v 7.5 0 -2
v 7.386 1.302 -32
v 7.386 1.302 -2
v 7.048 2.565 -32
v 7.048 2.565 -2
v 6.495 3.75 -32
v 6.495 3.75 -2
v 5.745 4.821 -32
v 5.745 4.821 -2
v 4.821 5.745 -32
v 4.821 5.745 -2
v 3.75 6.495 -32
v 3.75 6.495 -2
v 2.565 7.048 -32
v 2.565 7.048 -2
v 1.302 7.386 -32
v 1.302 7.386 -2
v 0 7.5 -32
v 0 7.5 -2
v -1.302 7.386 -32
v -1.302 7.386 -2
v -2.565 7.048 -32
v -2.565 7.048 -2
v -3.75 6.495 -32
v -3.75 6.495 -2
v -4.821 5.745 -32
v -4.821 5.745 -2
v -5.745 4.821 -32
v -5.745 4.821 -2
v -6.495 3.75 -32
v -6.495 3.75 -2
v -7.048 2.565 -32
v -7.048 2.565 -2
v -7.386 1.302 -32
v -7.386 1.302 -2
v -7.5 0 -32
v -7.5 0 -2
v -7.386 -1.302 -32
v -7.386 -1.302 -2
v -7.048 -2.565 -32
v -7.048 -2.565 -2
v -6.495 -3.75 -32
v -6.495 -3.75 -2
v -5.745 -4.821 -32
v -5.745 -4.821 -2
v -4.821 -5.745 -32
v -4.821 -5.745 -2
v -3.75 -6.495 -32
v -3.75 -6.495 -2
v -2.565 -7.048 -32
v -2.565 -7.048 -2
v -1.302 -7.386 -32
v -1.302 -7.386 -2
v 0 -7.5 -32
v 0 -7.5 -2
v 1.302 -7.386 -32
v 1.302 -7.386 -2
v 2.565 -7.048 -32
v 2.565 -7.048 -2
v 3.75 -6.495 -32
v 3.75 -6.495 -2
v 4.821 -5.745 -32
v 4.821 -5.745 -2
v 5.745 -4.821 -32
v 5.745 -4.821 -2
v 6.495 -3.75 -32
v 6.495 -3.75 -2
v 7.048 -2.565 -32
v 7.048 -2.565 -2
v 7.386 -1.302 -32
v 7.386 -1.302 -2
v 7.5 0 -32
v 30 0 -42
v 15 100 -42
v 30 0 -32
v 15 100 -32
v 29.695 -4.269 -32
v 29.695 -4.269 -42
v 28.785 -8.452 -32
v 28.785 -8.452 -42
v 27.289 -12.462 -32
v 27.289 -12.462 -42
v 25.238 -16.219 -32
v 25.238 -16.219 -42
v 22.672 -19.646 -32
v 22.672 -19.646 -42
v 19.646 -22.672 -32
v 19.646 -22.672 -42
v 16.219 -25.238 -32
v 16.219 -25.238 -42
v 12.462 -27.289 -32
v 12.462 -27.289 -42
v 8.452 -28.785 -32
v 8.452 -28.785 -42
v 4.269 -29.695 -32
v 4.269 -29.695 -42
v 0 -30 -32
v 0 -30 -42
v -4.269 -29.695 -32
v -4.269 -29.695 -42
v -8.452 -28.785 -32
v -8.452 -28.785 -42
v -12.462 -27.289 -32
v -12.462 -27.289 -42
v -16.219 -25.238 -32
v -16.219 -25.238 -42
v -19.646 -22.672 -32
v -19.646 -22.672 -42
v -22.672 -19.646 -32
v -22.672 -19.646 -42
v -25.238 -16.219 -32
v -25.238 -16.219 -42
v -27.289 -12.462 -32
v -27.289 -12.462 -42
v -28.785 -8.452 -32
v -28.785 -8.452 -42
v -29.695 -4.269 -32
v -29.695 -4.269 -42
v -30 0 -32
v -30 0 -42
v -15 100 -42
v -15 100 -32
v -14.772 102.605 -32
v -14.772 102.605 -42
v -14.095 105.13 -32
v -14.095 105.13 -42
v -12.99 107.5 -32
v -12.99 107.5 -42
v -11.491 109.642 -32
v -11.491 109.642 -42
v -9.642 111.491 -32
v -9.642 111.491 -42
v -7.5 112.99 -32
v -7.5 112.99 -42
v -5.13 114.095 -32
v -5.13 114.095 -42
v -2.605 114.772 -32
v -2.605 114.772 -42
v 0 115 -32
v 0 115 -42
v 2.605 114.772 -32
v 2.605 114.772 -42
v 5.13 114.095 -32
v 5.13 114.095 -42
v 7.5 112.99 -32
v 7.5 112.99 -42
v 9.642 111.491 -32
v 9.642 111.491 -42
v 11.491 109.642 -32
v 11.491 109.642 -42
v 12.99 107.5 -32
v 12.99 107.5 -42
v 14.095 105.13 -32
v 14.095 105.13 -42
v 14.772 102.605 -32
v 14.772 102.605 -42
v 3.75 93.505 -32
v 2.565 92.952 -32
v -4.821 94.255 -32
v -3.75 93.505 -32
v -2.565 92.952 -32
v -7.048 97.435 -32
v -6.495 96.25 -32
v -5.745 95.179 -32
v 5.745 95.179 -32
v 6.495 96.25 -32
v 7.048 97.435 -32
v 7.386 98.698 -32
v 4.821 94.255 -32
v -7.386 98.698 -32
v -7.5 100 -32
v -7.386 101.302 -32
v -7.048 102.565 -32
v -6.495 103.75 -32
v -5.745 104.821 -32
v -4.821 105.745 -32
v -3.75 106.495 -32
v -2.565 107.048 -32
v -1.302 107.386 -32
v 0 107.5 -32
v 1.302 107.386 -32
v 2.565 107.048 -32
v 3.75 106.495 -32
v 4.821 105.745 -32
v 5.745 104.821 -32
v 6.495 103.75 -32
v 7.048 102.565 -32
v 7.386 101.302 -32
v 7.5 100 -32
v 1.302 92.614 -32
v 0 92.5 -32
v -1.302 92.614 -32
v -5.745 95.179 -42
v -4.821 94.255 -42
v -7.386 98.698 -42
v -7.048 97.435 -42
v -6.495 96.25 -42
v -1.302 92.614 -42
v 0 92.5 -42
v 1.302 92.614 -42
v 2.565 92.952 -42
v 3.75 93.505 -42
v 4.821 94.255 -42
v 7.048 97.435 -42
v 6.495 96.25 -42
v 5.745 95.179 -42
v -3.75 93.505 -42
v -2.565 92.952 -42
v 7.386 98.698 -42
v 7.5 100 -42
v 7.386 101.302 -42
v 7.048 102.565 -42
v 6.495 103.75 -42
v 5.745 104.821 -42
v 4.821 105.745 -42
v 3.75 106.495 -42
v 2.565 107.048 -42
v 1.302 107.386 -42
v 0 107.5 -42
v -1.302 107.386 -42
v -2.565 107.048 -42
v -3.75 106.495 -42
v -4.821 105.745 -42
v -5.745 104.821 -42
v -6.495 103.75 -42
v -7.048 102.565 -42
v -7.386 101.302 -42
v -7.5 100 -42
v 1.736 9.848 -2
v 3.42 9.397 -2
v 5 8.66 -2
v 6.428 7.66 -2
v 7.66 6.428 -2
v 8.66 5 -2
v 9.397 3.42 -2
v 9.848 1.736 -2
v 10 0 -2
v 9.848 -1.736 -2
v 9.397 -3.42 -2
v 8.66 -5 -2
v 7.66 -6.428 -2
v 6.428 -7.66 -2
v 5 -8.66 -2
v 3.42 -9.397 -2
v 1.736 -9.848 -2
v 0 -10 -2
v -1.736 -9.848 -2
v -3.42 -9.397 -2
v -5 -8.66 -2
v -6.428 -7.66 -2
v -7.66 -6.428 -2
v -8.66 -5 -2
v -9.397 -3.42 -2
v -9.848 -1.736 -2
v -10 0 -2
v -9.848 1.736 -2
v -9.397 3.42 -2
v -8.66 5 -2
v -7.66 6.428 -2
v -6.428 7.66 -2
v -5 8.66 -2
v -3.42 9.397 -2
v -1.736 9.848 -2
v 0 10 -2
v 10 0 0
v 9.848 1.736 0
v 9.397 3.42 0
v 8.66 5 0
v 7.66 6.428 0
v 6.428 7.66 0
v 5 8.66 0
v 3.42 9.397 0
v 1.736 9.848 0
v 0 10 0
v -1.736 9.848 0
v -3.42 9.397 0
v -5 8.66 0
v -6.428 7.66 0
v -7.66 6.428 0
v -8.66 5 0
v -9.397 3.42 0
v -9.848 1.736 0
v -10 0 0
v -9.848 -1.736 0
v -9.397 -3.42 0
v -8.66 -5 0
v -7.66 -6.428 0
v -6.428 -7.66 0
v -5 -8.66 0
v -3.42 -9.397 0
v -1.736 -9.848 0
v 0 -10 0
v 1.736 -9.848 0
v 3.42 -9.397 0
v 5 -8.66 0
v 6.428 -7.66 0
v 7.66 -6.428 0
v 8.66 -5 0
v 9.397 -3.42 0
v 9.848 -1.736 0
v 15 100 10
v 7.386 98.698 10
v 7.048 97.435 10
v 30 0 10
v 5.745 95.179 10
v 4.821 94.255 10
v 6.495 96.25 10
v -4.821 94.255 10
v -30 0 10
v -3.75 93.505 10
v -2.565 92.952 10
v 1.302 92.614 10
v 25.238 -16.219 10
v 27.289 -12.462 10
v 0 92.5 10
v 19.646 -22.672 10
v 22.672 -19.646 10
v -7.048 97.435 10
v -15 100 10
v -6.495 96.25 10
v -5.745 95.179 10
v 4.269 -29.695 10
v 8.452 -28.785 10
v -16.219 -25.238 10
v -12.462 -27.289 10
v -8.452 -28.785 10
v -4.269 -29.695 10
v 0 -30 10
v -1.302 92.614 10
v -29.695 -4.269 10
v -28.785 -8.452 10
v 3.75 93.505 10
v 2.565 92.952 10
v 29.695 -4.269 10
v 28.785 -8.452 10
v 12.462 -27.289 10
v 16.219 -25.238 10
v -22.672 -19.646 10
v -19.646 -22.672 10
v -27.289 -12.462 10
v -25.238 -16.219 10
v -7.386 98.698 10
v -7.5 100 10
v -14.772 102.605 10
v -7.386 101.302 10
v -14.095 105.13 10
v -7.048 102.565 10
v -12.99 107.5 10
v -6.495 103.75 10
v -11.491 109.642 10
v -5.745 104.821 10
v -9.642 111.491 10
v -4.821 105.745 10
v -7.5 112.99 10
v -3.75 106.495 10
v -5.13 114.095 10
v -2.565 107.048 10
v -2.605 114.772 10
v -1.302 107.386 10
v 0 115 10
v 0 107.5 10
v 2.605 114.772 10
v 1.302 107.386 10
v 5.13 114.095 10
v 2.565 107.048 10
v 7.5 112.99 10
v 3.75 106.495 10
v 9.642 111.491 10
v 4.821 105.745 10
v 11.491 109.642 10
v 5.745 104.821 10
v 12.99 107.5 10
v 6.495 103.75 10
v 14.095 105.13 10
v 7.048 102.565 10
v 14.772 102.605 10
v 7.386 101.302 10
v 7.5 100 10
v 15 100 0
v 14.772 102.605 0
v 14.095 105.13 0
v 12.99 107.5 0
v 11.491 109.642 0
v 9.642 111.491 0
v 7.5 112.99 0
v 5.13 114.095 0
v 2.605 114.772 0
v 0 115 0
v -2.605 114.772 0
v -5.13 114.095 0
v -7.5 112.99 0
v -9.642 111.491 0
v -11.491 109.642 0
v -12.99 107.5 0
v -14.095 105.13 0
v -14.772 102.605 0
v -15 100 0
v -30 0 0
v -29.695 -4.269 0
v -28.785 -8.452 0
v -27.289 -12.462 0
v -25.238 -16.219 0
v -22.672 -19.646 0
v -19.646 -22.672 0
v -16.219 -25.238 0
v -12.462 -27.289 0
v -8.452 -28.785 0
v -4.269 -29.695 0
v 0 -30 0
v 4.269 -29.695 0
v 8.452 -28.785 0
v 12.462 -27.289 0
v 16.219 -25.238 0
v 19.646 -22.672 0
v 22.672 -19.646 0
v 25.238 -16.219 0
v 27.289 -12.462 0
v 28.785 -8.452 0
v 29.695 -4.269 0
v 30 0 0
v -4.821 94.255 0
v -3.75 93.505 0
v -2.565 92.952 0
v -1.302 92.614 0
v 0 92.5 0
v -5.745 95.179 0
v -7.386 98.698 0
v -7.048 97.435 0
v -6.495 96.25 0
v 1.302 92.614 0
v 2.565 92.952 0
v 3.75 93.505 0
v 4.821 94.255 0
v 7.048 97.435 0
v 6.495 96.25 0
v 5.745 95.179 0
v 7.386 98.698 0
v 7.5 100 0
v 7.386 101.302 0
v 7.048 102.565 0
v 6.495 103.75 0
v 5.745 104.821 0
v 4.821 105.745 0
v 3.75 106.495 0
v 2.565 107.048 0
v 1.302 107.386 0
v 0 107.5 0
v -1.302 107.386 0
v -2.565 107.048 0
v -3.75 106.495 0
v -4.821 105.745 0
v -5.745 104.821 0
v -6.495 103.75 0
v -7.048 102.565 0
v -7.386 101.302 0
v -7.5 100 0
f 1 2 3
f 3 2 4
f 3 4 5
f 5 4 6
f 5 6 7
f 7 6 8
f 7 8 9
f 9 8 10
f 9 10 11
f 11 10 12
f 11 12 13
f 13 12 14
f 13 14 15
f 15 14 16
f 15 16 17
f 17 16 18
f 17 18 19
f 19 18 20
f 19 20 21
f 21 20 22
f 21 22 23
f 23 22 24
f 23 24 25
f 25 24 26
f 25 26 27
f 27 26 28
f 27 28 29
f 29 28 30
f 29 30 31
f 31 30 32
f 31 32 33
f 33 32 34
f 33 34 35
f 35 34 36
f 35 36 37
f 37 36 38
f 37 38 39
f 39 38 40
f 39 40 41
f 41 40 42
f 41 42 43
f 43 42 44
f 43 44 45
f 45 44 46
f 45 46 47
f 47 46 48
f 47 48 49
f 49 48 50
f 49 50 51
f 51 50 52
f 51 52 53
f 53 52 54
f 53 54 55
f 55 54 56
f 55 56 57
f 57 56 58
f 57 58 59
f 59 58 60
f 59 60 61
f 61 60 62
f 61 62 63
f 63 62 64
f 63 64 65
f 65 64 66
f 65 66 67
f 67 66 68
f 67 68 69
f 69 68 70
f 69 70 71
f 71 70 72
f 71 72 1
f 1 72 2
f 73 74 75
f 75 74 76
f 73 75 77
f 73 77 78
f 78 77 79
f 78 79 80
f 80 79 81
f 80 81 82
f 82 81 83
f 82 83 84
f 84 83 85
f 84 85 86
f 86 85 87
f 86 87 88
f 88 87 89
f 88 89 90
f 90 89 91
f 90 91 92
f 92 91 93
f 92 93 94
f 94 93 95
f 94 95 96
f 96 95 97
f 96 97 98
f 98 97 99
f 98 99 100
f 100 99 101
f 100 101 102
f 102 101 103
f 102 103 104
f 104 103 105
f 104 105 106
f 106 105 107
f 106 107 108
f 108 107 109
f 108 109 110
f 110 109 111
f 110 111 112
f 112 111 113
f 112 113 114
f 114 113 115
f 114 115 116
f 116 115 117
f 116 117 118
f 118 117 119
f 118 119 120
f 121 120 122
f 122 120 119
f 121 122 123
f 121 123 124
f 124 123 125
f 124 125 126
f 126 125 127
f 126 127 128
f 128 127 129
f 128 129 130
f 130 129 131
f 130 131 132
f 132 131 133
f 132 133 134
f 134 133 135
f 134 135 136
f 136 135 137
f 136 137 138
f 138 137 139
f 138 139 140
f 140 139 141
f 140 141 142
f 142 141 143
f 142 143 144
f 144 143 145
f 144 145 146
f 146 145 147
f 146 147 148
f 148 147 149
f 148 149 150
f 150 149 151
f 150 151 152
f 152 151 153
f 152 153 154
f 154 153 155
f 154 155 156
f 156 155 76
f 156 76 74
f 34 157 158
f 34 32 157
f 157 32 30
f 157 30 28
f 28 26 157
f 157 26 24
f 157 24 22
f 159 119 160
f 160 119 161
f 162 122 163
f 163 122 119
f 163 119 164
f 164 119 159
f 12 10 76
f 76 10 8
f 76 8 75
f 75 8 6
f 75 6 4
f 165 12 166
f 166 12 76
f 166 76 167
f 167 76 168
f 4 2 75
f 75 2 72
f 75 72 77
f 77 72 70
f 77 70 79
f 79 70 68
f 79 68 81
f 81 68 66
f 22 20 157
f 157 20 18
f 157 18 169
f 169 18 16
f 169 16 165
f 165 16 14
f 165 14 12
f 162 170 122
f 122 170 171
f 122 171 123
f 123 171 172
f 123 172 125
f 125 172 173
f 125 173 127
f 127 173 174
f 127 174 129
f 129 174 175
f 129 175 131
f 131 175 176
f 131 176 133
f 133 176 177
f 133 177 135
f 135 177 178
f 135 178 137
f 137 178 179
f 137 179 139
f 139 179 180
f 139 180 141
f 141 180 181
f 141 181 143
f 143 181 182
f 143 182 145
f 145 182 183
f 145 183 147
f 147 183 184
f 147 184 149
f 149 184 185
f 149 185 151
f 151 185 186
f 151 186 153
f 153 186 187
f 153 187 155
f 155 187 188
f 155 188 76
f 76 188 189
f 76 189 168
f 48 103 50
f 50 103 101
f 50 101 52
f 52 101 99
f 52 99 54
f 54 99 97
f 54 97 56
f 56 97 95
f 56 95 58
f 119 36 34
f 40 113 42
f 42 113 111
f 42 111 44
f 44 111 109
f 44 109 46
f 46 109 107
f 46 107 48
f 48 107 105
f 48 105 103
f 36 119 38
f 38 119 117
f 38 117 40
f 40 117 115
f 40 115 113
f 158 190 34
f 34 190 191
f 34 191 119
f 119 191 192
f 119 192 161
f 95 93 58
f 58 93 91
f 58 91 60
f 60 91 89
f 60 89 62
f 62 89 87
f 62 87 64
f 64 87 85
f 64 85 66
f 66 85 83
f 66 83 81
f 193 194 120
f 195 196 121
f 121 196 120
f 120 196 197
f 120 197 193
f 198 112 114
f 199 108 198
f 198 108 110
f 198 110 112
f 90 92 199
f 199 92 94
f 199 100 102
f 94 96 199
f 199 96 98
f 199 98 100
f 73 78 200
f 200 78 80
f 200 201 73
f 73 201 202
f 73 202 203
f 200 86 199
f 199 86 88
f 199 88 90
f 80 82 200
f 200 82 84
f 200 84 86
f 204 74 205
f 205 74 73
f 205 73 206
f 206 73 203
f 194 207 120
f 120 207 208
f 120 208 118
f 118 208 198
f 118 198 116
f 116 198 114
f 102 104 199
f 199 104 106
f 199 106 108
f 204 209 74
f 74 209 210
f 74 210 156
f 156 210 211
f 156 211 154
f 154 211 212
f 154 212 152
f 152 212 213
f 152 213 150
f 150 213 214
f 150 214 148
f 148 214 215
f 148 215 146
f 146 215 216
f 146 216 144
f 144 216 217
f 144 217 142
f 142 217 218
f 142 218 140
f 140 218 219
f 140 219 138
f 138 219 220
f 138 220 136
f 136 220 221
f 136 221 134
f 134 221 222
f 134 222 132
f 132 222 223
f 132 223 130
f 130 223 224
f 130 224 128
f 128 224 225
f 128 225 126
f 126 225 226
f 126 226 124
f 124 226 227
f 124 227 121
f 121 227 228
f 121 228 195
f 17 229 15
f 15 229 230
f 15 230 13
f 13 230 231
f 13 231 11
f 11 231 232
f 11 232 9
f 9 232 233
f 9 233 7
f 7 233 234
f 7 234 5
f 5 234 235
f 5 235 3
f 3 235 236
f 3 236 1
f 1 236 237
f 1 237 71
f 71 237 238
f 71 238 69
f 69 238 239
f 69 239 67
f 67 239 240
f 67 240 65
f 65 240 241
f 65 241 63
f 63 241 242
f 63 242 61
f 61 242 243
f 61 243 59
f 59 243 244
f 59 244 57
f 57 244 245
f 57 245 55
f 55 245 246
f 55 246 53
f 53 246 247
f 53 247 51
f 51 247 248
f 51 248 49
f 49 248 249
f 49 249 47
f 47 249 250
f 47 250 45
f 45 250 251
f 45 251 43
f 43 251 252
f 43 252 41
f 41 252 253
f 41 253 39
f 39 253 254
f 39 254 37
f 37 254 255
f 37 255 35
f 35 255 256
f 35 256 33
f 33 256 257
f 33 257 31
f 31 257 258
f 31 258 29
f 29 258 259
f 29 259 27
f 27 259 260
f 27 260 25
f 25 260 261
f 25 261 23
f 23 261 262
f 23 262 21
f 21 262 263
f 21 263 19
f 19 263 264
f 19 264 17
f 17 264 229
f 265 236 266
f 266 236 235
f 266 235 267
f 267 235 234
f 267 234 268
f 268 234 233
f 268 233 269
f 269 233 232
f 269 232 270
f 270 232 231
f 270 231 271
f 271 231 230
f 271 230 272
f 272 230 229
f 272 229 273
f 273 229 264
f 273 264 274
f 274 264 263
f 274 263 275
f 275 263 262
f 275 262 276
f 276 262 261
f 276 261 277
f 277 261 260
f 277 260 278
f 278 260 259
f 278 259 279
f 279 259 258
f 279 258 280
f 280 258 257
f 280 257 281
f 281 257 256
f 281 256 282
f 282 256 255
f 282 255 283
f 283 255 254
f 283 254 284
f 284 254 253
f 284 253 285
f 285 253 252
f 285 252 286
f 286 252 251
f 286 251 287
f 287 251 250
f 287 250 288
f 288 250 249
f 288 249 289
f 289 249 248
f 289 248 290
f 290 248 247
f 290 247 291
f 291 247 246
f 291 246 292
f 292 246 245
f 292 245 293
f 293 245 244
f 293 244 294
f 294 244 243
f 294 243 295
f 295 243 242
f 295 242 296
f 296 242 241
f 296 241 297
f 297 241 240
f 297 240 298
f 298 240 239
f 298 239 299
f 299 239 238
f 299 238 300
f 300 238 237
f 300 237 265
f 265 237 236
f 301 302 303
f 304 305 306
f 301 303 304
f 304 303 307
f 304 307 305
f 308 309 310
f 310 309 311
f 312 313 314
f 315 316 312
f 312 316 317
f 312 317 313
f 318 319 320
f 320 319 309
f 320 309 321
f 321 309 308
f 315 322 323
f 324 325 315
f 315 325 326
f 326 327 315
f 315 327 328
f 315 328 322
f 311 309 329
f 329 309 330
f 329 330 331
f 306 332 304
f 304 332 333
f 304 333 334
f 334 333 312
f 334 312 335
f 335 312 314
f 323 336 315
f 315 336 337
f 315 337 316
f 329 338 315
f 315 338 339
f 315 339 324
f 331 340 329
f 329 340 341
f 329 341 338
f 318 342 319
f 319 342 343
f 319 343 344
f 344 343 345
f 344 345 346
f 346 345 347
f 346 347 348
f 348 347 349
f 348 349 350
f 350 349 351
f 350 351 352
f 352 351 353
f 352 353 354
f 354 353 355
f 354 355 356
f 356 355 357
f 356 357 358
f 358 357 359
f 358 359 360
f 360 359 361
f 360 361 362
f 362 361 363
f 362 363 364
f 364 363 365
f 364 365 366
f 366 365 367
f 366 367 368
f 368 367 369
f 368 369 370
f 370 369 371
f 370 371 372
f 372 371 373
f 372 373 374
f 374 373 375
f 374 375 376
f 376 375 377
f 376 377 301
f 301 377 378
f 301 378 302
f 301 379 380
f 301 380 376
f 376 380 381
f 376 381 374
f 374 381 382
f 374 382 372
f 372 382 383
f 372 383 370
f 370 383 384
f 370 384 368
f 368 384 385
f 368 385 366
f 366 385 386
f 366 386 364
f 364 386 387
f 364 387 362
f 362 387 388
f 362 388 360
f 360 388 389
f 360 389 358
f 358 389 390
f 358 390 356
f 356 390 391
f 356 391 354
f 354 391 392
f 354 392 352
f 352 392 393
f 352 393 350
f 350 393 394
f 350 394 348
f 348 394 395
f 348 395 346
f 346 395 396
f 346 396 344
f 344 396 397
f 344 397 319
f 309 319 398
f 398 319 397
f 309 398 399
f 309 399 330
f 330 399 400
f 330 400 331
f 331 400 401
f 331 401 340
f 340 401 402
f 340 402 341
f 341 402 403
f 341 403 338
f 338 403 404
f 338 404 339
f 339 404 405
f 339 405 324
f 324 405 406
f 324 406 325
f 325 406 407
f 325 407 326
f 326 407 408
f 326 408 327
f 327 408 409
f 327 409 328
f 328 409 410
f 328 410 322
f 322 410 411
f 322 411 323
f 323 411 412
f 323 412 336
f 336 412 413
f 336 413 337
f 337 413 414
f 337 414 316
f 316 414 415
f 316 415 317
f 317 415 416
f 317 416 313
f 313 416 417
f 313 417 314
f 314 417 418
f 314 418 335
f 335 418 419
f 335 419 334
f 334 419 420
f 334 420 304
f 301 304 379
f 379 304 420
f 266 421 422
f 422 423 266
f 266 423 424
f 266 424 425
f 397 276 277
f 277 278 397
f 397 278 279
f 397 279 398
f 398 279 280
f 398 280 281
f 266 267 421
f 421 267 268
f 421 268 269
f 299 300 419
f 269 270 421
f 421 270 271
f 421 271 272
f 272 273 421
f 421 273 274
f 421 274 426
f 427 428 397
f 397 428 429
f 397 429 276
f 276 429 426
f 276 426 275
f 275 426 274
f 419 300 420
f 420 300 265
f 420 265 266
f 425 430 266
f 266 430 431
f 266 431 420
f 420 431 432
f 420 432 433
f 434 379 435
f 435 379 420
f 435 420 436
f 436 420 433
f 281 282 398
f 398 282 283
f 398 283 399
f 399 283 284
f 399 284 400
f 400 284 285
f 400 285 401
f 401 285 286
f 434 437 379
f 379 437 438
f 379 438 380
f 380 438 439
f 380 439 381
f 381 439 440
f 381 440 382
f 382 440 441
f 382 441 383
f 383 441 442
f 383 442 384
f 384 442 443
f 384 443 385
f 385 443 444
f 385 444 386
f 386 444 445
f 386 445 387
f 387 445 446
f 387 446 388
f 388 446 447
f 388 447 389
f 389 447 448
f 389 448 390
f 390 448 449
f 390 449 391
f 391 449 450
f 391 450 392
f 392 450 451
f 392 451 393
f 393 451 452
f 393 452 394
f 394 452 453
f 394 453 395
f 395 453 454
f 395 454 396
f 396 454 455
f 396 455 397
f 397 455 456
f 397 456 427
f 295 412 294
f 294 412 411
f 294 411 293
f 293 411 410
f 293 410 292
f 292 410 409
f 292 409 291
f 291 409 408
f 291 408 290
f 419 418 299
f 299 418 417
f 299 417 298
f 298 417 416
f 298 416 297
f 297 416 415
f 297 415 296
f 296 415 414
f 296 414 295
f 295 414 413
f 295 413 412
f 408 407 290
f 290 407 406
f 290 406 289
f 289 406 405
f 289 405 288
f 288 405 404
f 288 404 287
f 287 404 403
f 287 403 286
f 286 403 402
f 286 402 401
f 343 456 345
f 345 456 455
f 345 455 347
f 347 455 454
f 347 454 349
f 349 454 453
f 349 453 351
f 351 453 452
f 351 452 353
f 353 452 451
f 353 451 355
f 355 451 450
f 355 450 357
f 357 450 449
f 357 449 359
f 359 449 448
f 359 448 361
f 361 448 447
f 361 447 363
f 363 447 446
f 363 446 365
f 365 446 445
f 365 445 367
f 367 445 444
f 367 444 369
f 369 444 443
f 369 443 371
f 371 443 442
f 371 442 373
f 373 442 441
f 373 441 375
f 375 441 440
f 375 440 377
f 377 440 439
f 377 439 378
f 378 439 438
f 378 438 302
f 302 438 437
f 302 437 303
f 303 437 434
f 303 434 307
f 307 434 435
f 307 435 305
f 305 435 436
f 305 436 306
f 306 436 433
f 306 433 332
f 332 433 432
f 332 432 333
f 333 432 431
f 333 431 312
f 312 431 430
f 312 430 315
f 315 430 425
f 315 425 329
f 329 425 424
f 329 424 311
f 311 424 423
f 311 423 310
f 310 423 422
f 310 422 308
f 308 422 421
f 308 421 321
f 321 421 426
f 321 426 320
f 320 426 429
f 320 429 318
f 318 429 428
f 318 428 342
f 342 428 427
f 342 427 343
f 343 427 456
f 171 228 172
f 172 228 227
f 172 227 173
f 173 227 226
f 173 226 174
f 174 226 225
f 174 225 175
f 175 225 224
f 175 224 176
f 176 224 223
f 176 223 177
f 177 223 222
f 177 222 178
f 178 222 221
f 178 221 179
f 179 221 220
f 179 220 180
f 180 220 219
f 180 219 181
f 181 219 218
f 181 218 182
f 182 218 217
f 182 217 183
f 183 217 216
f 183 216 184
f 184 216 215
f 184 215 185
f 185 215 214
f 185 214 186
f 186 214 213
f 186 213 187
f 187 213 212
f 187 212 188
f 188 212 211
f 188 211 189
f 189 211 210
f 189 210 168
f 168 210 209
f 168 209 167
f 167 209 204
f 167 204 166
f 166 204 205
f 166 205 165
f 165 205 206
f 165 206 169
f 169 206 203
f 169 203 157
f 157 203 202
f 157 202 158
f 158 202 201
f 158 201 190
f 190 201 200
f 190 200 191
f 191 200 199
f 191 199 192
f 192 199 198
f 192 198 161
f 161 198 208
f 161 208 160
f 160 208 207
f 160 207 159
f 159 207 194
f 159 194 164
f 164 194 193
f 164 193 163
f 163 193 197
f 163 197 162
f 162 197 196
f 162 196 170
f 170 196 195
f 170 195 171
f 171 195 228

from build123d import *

# Parameters (mm, degrees)
SKETCH1_R           = 7.5
SKETCH1_R_2         = 5
BOSS_EXTRUDE4_DEPTH = 10
BOSS_EXTRUDE5_START = -52
SKETCH6_R           = 7.5
BOSS_EXTRUDE5_DEPTH = 52
BOSS_EXTRUDE7_START = 2
SKETCH8_R           = 10
SKETCH8_R_2         = 7.5
BOSS_EXTRUDE7_DEPTH = 2
SKETCH10_R          = 7.5
CUT_EXTRUDE2_DEPTH  = 130.726635661


with BuildPart() as part:
    # Sketch1 → Boss-Extrude4 (new body)
    with BuildSketch(Plane.XY):
        with BuildLine():
            ThreePointArc((15, 100), (0, 115), (-15, 100))
            Line((-15, 100), (-28.679706601, 8.80195599))
            Line((-28.679706601, 8.80195599), (-30, 0))
            ThreePointArc((-30, 0), (0, -30), (30, 0))
            Line((30, 0), (28.679706601, 8.80195599))
            Line((28.679706601, 8.80195599), (15, 100))
        make_face()
        Circle(SKETCH1_R, mode=Mode.SUBTRACT)
        with Locations((0, 100)):
            Circle(SKETCH1_R_2, mode=Mode.SUBTRACT)
    boss_extrude4 = extrude(amount=BOSS_EXTRUDE4_DEPTH)

    # Sketch6 → Boss-Extrude5 (add)
    with BuildSketch(Plane.XY.offset(10).offset(BOSS_EXTRUDE5_START)):
        Circle(SKETCH6_R)
    extrude(amount=BOSS_EXTRUDE5_DEPTH)

    # Mirror1: Boss-Extrude4 across plane
    add(boss_extrude4.mirror(Plane.XY.offset(-16)))

    # Sketch8 → Boss-Extrude7 (add)
    with BuildSketch(Plane(origin=(0, 0, 0), x_dir=(-1, 0, 0), z_dir=(0, 0, -1)).offset(BOSS_EXTRUDE7_START)):
        with Locations(Location((0, 0, 0), (0, 0, 180))):
            Circle(SKETCH8_R)
        with Locations(Location((0, 0, 0), (0, 0, 180))):
            Circle(SKETCH8_R_2, mode=Mode.SUBTRACT)
    extrude(amount=-BOSS_EXTRUDE7_DEPTH)

    # Sketch10 → Cut-Extrude2 (cut, through all)
    with BuildSketch(Plane(origin=(0, 0, -42), x_dir=(-1, 0, 0), z_dir=(0, 0, -1))):
        with Locations((0, 100)):
            Circle(SKETCH10_R)
    extrude(amount=-CUT_EXTRUDE2_DEPTH, mode=Mode.SUBTRACT)


solid = part.part
